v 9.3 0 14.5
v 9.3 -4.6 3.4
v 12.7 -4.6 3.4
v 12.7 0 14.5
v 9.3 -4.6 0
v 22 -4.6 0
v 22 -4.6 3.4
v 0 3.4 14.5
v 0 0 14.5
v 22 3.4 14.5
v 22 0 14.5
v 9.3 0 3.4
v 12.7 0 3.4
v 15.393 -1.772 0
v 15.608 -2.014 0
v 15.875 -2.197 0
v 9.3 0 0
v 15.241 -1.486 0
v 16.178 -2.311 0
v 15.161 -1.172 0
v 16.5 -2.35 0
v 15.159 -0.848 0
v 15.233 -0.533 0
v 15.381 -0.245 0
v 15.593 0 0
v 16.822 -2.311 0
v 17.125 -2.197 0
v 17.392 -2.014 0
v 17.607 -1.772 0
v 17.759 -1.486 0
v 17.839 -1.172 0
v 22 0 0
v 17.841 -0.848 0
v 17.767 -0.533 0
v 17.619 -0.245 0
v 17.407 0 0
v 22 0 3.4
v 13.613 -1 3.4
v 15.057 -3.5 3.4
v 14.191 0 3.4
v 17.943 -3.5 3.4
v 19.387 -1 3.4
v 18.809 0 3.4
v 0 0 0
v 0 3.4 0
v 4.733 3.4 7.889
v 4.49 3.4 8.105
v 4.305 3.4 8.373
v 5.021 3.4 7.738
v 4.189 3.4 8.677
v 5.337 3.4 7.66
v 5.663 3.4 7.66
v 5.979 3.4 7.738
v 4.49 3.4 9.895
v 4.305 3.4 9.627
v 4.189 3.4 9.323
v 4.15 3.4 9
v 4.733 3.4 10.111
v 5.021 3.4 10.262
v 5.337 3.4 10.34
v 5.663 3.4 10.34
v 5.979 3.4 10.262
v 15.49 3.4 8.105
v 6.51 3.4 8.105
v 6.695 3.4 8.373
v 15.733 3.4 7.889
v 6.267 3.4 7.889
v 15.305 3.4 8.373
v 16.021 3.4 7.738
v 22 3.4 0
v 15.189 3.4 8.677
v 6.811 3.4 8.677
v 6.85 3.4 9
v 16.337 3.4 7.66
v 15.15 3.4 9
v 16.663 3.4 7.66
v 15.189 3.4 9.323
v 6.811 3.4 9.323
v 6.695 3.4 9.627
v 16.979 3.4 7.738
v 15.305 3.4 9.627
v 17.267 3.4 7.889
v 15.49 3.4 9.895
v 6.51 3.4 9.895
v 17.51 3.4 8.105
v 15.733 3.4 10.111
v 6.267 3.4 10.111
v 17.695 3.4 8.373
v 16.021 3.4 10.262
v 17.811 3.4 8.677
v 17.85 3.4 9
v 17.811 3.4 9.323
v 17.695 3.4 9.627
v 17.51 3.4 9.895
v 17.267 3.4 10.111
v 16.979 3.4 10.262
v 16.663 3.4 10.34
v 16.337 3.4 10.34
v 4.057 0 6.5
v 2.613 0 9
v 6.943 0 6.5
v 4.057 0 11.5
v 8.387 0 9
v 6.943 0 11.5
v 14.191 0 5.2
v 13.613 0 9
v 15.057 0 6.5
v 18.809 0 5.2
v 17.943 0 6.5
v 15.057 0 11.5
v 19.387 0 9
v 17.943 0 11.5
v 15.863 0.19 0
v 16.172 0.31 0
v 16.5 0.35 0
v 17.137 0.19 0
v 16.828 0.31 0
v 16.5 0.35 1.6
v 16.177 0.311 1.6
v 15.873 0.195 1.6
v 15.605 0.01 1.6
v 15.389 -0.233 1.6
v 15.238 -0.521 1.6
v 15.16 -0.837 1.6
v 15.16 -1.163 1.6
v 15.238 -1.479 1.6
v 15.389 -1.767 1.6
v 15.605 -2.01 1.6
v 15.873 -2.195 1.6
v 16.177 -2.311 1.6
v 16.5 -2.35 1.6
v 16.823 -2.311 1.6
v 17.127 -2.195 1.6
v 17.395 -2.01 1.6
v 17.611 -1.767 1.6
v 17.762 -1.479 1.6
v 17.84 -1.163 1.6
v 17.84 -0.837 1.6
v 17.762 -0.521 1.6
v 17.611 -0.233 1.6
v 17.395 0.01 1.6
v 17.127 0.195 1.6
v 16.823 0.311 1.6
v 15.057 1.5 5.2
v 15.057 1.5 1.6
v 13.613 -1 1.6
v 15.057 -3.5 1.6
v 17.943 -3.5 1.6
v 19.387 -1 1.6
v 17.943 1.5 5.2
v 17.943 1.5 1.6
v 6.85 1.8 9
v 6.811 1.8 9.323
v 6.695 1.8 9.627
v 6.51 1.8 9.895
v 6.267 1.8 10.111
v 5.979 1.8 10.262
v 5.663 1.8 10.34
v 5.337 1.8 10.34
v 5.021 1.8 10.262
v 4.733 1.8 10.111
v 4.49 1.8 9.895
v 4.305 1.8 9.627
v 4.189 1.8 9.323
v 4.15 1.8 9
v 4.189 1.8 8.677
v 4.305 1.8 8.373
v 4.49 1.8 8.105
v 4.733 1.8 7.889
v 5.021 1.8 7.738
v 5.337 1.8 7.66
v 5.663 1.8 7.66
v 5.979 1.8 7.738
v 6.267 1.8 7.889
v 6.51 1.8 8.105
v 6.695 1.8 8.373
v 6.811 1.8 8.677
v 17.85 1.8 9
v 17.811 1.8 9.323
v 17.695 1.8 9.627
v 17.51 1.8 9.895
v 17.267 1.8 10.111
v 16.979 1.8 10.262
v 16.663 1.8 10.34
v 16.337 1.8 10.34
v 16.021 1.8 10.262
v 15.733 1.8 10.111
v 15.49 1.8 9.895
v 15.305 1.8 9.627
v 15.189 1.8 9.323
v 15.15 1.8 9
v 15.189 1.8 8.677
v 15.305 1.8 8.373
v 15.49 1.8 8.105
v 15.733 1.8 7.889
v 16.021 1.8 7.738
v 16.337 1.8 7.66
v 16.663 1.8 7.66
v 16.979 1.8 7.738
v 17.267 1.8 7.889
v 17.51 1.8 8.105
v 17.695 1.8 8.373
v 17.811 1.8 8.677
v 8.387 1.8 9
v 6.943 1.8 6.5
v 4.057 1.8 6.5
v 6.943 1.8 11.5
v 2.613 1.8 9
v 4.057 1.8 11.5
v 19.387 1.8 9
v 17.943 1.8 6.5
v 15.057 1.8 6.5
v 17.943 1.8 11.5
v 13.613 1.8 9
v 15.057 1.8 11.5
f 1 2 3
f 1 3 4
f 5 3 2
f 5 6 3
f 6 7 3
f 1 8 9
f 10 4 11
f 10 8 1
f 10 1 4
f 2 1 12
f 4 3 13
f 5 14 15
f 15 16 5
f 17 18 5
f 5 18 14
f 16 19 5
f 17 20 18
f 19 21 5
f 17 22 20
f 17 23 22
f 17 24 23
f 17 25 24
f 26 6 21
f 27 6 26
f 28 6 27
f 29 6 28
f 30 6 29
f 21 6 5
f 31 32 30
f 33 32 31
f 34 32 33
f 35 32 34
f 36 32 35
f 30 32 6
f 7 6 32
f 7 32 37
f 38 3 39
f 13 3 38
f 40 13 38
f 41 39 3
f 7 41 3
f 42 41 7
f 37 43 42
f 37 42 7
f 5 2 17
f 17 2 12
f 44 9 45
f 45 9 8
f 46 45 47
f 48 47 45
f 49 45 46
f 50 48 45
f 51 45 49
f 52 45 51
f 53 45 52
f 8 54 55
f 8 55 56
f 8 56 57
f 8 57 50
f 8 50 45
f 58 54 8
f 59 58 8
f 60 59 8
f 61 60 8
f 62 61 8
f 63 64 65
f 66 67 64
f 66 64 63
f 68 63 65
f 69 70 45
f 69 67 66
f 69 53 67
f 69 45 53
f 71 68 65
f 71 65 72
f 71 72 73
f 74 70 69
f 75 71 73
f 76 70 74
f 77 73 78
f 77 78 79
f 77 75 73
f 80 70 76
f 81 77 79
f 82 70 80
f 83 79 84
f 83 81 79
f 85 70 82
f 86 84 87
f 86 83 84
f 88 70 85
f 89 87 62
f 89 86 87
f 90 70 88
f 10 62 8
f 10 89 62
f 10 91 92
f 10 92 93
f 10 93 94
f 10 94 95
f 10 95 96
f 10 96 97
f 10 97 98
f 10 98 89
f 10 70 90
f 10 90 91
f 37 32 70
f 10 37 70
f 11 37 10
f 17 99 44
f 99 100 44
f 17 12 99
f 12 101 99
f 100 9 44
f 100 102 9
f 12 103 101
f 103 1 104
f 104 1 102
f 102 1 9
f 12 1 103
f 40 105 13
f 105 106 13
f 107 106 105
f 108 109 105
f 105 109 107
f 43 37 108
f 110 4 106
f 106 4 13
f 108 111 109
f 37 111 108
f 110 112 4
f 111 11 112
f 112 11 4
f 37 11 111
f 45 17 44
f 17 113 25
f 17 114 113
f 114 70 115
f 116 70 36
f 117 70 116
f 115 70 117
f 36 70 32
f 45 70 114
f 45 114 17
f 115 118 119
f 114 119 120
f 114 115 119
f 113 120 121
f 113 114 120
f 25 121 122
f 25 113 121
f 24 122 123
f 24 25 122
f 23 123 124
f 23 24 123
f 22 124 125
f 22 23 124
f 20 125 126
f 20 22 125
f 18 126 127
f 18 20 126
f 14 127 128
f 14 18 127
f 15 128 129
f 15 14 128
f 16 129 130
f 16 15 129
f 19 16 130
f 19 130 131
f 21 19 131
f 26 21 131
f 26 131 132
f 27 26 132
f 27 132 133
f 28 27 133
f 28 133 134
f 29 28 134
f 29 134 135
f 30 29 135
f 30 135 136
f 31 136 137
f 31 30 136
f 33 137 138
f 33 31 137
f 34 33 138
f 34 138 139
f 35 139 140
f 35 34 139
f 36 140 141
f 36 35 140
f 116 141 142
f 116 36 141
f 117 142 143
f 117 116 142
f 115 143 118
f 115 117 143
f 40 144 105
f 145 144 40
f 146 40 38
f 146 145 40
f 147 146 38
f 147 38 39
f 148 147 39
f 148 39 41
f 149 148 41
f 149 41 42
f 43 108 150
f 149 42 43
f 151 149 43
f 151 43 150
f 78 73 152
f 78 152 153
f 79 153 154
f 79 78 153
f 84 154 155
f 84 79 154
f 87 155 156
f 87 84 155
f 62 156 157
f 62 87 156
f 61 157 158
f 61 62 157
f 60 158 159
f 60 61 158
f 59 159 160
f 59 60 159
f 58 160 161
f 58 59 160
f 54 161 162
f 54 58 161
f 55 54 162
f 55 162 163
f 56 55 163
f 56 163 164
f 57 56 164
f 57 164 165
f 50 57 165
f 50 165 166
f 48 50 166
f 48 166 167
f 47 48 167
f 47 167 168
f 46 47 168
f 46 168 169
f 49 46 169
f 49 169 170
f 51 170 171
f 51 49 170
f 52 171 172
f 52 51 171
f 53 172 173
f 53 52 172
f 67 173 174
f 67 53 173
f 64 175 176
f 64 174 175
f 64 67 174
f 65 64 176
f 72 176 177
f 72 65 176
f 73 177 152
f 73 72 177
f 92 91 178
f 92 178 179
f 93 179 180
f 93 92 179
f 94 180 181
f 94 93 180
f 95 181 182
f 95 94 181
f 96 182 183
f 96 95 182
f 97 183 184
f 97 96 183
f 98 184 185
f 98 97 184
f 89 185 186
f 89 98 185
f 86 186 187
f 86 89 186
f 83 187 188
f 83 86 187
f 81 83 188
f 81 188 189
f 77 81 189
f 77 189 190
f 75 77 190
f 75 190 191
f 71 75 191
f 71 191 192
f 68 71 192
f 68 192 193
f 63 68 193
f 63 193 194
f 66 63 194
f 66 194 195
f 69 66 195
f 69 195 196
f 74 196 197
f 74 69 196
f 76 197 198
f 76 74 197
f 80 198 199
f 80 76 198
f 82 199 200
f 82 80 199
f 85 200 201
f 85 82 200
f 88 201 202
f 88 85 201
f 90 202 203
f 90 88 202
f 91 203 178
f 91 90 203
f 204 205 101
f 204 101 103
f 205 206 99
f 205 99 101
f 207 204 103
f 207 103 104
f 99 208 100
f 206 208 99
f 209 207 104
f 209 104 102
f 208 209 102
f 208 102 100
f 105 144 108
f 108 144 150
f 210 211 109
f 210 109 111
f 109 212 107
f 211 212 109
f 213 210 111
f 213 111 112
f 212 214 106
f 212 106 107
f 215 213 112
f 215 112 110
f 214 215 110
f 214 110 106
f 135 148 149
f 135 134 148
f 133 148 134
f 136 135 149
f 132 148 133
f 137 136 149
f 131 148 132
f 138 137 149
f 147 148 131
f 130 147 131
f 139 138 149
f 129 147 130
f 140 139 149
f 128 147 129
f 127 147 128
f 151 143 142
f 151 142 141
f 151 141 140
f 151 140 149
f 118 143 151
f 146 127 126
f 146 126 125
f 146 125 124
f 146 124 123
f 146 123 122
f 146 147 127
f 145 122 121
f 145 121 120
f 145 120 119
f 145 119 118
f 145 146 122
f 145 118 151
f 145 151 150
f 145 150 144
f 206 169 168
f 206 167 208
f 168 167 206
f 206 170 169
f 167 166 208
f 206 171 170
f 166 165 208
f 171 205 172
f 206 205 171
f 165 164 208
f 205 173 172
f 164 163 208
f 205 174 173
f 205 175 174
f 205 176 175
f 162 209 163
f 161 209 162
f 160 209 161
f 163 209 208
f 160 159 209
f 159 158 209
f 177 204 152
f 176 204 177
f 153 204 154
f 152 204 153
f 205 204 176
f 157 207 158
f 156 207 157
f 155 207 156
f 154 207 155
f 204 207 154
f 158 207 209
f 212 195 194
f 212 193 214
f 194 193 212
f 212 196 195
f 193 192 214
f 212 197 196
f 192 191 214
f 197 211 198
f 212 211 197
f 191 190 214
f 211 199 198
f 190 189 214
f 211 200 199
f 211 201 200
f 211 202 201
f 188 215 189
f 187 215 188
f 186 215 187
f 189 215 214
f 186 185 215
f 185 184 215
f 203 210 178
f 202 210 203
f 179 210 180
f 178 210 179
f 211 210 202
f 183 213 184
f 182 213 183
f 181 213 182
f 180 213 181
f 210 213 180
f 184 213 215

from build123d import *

# Parameters (mm, degrees)
EXTRUDE003_DEPTH  = 3.6
CYLINDER002_R     = 1.35
CYLINDER002_DEPTH = 3.4
EXTRUDE002_DEPTH  = 1.8
CYLINDER003_R     = 1.35
CYLINDER003_DEPTH = 3.4
EXTRUDE001_DEPTH  = 1.8
CYLINDER_R        = 1.35
CYLINDER_DEPTH    = 3.4
BOX_W             = 22
BOX_H             = 3.4
BOX_DEPTH         = 14.5
BOX001_W          = 12.7
BOX001_H          = 4.6
BOX001_DEPTH      = 3.4
EXTRUDE_DEPTH     = 3.4


with BuildPart() as extrude003:
    # Sketch003 → Extrude003 (new body)
    with BuildSketch(Plane(origin=(16.5, -1, 1.6), x_dir=(1, 0, 0), z_dir=(0, 0, 1))):
        Polygon((2.8868, 0), (1.4434, 2.500042), (-1.4434, 2.500042), (-2.8868, 0), (-1.4434, -2.500042), (1.4434, -2.500042), align=None)
    extrude(amount=EXTRUDE003_DEPTH)


with BuildPart() as hole03:
    # Cylinder002 → Cylinder002 (new body)
    with BuildSketch(Plane(origin=(16.5, -1, 0), x_dir=(0, 1, 0), z_dir=(0, 0, 1))):
        Circle(CYLINDER002_R)
    extrude(amount=CYLINDER002_DEPTH)

    # Fusion002: union Extrude003
    add(extrude003.part)


with BuildPart() as extrude002:
    # Sketch002 → Extrude002 (new body)
    with BuildSketch(Plane(origin=(16.5, 1.8, 9), x_dir=(1, 0, 0), z_dir=(0, -1, 0))):
        Polygon((2.8868, 0), (1.4434, 2.500042), (-1.4434, 2.500042), (-2.8868, 0), (-1.4434, -2.500042), (1.4434, -2.500042), align=None)
    extrude(amount=EXTRUDE002_DEPTH)


with BuildPart() as hole02:
    # Cylinder003 → Cylinder003 (new body)
    with BuildSketch(Plane(origin=(16.5, 3.4, 9), x_dir=(1, 0, 0), z_dir=(0, -1, 0))):
        Circle(CYLINDER003_R)
    extrude(amount=CYLINDER003_DEPTH)

    # Fusion001: union Extrude002
    add(extrude002.part)


with BuildPart() as extrude001:
    # Sketch001 → Extrude001 (new body)
    with BuildSketch(Plane(origin=(5.5, 1.8, 9), x_dir=(1, 0, 0), z_dir=(0, -1, 0))):
        Polygon((2.8868, 0), (1.4434, 2.500042), (-1.4434, 2.500042), (-2.8868, 0), (-1.4434, -2.500042), (1.4434, -2.500042), align=None)
    extrude(amount=EXTRUDE001_DEPTH)


with BuildPart() as hole01:
    # Cylinder → Cylinder (new body)
    with BuildSketch(Plane(origin=(5.5, 3.4, 9), x_dir=(1, 0, 0), z_dir=(0, -1, 0))):
        Circle(CYLINDER_R)
    extrude(amount=CYLINDER_DEPTH)

    # Fusion: union Extrude001
    add(extrude001.part)


with BuildPart() as cut001:
    # Box → Box (new body)
    with BuildSketch(Plane.XY):
        with Locations((11, 1.7)):
            Rectangle(BOX_W, BOX_H)
    extrude(amount=BOX_DEPTH)

    # Cut: cut Hole01
    add(hole01.part, mode=Mode.SUBTRACT)

    # Cut001: cut Hole02
    add(hole02.part, mode=Mode.SUBTRACT)


with BuildPart() as cut002:
    # Box001 → Box001 (new body)
    with BuildSketch(Plane(origin=(9.3, -4.6, 0), x_dir=(1, 0, 0), z_dir=(0, 0, 1))):
        with Locations((6.35, 2.3)):
            Rectangle(BOX001_W, BOX001_H)
    extrude(amount=BOX001_DEPTH)

    # Fusion003: union Cut001
    add(cut001.part)

    # Cut002: cut Hole03
    add(hole03.part, mode=Mode.SUBTRACT)


with BuildPart() as right_hand_bracket:
    # Sketch → Extrude (new body)
    with BuildSketch(Plane(origin=(0, 0, 3.4), x_dir=(0, 1, 0), z_dir=(1, 0, 0))):
        Polygon((0, 11.1), (0, 0), (-4.6, 0), align=None)
    extrude(amount=EXTRUDE_DEPTH)


with BuildPart() as right_hand_bracket_1:
    # Extrude placement: moved
    add(right_hand_bracket.part.moved(Location((9.3, 0, 0))))

    # Fusion004: union Cut002
    add(cut002.part)


solid = right_hand_bracket_1.part
